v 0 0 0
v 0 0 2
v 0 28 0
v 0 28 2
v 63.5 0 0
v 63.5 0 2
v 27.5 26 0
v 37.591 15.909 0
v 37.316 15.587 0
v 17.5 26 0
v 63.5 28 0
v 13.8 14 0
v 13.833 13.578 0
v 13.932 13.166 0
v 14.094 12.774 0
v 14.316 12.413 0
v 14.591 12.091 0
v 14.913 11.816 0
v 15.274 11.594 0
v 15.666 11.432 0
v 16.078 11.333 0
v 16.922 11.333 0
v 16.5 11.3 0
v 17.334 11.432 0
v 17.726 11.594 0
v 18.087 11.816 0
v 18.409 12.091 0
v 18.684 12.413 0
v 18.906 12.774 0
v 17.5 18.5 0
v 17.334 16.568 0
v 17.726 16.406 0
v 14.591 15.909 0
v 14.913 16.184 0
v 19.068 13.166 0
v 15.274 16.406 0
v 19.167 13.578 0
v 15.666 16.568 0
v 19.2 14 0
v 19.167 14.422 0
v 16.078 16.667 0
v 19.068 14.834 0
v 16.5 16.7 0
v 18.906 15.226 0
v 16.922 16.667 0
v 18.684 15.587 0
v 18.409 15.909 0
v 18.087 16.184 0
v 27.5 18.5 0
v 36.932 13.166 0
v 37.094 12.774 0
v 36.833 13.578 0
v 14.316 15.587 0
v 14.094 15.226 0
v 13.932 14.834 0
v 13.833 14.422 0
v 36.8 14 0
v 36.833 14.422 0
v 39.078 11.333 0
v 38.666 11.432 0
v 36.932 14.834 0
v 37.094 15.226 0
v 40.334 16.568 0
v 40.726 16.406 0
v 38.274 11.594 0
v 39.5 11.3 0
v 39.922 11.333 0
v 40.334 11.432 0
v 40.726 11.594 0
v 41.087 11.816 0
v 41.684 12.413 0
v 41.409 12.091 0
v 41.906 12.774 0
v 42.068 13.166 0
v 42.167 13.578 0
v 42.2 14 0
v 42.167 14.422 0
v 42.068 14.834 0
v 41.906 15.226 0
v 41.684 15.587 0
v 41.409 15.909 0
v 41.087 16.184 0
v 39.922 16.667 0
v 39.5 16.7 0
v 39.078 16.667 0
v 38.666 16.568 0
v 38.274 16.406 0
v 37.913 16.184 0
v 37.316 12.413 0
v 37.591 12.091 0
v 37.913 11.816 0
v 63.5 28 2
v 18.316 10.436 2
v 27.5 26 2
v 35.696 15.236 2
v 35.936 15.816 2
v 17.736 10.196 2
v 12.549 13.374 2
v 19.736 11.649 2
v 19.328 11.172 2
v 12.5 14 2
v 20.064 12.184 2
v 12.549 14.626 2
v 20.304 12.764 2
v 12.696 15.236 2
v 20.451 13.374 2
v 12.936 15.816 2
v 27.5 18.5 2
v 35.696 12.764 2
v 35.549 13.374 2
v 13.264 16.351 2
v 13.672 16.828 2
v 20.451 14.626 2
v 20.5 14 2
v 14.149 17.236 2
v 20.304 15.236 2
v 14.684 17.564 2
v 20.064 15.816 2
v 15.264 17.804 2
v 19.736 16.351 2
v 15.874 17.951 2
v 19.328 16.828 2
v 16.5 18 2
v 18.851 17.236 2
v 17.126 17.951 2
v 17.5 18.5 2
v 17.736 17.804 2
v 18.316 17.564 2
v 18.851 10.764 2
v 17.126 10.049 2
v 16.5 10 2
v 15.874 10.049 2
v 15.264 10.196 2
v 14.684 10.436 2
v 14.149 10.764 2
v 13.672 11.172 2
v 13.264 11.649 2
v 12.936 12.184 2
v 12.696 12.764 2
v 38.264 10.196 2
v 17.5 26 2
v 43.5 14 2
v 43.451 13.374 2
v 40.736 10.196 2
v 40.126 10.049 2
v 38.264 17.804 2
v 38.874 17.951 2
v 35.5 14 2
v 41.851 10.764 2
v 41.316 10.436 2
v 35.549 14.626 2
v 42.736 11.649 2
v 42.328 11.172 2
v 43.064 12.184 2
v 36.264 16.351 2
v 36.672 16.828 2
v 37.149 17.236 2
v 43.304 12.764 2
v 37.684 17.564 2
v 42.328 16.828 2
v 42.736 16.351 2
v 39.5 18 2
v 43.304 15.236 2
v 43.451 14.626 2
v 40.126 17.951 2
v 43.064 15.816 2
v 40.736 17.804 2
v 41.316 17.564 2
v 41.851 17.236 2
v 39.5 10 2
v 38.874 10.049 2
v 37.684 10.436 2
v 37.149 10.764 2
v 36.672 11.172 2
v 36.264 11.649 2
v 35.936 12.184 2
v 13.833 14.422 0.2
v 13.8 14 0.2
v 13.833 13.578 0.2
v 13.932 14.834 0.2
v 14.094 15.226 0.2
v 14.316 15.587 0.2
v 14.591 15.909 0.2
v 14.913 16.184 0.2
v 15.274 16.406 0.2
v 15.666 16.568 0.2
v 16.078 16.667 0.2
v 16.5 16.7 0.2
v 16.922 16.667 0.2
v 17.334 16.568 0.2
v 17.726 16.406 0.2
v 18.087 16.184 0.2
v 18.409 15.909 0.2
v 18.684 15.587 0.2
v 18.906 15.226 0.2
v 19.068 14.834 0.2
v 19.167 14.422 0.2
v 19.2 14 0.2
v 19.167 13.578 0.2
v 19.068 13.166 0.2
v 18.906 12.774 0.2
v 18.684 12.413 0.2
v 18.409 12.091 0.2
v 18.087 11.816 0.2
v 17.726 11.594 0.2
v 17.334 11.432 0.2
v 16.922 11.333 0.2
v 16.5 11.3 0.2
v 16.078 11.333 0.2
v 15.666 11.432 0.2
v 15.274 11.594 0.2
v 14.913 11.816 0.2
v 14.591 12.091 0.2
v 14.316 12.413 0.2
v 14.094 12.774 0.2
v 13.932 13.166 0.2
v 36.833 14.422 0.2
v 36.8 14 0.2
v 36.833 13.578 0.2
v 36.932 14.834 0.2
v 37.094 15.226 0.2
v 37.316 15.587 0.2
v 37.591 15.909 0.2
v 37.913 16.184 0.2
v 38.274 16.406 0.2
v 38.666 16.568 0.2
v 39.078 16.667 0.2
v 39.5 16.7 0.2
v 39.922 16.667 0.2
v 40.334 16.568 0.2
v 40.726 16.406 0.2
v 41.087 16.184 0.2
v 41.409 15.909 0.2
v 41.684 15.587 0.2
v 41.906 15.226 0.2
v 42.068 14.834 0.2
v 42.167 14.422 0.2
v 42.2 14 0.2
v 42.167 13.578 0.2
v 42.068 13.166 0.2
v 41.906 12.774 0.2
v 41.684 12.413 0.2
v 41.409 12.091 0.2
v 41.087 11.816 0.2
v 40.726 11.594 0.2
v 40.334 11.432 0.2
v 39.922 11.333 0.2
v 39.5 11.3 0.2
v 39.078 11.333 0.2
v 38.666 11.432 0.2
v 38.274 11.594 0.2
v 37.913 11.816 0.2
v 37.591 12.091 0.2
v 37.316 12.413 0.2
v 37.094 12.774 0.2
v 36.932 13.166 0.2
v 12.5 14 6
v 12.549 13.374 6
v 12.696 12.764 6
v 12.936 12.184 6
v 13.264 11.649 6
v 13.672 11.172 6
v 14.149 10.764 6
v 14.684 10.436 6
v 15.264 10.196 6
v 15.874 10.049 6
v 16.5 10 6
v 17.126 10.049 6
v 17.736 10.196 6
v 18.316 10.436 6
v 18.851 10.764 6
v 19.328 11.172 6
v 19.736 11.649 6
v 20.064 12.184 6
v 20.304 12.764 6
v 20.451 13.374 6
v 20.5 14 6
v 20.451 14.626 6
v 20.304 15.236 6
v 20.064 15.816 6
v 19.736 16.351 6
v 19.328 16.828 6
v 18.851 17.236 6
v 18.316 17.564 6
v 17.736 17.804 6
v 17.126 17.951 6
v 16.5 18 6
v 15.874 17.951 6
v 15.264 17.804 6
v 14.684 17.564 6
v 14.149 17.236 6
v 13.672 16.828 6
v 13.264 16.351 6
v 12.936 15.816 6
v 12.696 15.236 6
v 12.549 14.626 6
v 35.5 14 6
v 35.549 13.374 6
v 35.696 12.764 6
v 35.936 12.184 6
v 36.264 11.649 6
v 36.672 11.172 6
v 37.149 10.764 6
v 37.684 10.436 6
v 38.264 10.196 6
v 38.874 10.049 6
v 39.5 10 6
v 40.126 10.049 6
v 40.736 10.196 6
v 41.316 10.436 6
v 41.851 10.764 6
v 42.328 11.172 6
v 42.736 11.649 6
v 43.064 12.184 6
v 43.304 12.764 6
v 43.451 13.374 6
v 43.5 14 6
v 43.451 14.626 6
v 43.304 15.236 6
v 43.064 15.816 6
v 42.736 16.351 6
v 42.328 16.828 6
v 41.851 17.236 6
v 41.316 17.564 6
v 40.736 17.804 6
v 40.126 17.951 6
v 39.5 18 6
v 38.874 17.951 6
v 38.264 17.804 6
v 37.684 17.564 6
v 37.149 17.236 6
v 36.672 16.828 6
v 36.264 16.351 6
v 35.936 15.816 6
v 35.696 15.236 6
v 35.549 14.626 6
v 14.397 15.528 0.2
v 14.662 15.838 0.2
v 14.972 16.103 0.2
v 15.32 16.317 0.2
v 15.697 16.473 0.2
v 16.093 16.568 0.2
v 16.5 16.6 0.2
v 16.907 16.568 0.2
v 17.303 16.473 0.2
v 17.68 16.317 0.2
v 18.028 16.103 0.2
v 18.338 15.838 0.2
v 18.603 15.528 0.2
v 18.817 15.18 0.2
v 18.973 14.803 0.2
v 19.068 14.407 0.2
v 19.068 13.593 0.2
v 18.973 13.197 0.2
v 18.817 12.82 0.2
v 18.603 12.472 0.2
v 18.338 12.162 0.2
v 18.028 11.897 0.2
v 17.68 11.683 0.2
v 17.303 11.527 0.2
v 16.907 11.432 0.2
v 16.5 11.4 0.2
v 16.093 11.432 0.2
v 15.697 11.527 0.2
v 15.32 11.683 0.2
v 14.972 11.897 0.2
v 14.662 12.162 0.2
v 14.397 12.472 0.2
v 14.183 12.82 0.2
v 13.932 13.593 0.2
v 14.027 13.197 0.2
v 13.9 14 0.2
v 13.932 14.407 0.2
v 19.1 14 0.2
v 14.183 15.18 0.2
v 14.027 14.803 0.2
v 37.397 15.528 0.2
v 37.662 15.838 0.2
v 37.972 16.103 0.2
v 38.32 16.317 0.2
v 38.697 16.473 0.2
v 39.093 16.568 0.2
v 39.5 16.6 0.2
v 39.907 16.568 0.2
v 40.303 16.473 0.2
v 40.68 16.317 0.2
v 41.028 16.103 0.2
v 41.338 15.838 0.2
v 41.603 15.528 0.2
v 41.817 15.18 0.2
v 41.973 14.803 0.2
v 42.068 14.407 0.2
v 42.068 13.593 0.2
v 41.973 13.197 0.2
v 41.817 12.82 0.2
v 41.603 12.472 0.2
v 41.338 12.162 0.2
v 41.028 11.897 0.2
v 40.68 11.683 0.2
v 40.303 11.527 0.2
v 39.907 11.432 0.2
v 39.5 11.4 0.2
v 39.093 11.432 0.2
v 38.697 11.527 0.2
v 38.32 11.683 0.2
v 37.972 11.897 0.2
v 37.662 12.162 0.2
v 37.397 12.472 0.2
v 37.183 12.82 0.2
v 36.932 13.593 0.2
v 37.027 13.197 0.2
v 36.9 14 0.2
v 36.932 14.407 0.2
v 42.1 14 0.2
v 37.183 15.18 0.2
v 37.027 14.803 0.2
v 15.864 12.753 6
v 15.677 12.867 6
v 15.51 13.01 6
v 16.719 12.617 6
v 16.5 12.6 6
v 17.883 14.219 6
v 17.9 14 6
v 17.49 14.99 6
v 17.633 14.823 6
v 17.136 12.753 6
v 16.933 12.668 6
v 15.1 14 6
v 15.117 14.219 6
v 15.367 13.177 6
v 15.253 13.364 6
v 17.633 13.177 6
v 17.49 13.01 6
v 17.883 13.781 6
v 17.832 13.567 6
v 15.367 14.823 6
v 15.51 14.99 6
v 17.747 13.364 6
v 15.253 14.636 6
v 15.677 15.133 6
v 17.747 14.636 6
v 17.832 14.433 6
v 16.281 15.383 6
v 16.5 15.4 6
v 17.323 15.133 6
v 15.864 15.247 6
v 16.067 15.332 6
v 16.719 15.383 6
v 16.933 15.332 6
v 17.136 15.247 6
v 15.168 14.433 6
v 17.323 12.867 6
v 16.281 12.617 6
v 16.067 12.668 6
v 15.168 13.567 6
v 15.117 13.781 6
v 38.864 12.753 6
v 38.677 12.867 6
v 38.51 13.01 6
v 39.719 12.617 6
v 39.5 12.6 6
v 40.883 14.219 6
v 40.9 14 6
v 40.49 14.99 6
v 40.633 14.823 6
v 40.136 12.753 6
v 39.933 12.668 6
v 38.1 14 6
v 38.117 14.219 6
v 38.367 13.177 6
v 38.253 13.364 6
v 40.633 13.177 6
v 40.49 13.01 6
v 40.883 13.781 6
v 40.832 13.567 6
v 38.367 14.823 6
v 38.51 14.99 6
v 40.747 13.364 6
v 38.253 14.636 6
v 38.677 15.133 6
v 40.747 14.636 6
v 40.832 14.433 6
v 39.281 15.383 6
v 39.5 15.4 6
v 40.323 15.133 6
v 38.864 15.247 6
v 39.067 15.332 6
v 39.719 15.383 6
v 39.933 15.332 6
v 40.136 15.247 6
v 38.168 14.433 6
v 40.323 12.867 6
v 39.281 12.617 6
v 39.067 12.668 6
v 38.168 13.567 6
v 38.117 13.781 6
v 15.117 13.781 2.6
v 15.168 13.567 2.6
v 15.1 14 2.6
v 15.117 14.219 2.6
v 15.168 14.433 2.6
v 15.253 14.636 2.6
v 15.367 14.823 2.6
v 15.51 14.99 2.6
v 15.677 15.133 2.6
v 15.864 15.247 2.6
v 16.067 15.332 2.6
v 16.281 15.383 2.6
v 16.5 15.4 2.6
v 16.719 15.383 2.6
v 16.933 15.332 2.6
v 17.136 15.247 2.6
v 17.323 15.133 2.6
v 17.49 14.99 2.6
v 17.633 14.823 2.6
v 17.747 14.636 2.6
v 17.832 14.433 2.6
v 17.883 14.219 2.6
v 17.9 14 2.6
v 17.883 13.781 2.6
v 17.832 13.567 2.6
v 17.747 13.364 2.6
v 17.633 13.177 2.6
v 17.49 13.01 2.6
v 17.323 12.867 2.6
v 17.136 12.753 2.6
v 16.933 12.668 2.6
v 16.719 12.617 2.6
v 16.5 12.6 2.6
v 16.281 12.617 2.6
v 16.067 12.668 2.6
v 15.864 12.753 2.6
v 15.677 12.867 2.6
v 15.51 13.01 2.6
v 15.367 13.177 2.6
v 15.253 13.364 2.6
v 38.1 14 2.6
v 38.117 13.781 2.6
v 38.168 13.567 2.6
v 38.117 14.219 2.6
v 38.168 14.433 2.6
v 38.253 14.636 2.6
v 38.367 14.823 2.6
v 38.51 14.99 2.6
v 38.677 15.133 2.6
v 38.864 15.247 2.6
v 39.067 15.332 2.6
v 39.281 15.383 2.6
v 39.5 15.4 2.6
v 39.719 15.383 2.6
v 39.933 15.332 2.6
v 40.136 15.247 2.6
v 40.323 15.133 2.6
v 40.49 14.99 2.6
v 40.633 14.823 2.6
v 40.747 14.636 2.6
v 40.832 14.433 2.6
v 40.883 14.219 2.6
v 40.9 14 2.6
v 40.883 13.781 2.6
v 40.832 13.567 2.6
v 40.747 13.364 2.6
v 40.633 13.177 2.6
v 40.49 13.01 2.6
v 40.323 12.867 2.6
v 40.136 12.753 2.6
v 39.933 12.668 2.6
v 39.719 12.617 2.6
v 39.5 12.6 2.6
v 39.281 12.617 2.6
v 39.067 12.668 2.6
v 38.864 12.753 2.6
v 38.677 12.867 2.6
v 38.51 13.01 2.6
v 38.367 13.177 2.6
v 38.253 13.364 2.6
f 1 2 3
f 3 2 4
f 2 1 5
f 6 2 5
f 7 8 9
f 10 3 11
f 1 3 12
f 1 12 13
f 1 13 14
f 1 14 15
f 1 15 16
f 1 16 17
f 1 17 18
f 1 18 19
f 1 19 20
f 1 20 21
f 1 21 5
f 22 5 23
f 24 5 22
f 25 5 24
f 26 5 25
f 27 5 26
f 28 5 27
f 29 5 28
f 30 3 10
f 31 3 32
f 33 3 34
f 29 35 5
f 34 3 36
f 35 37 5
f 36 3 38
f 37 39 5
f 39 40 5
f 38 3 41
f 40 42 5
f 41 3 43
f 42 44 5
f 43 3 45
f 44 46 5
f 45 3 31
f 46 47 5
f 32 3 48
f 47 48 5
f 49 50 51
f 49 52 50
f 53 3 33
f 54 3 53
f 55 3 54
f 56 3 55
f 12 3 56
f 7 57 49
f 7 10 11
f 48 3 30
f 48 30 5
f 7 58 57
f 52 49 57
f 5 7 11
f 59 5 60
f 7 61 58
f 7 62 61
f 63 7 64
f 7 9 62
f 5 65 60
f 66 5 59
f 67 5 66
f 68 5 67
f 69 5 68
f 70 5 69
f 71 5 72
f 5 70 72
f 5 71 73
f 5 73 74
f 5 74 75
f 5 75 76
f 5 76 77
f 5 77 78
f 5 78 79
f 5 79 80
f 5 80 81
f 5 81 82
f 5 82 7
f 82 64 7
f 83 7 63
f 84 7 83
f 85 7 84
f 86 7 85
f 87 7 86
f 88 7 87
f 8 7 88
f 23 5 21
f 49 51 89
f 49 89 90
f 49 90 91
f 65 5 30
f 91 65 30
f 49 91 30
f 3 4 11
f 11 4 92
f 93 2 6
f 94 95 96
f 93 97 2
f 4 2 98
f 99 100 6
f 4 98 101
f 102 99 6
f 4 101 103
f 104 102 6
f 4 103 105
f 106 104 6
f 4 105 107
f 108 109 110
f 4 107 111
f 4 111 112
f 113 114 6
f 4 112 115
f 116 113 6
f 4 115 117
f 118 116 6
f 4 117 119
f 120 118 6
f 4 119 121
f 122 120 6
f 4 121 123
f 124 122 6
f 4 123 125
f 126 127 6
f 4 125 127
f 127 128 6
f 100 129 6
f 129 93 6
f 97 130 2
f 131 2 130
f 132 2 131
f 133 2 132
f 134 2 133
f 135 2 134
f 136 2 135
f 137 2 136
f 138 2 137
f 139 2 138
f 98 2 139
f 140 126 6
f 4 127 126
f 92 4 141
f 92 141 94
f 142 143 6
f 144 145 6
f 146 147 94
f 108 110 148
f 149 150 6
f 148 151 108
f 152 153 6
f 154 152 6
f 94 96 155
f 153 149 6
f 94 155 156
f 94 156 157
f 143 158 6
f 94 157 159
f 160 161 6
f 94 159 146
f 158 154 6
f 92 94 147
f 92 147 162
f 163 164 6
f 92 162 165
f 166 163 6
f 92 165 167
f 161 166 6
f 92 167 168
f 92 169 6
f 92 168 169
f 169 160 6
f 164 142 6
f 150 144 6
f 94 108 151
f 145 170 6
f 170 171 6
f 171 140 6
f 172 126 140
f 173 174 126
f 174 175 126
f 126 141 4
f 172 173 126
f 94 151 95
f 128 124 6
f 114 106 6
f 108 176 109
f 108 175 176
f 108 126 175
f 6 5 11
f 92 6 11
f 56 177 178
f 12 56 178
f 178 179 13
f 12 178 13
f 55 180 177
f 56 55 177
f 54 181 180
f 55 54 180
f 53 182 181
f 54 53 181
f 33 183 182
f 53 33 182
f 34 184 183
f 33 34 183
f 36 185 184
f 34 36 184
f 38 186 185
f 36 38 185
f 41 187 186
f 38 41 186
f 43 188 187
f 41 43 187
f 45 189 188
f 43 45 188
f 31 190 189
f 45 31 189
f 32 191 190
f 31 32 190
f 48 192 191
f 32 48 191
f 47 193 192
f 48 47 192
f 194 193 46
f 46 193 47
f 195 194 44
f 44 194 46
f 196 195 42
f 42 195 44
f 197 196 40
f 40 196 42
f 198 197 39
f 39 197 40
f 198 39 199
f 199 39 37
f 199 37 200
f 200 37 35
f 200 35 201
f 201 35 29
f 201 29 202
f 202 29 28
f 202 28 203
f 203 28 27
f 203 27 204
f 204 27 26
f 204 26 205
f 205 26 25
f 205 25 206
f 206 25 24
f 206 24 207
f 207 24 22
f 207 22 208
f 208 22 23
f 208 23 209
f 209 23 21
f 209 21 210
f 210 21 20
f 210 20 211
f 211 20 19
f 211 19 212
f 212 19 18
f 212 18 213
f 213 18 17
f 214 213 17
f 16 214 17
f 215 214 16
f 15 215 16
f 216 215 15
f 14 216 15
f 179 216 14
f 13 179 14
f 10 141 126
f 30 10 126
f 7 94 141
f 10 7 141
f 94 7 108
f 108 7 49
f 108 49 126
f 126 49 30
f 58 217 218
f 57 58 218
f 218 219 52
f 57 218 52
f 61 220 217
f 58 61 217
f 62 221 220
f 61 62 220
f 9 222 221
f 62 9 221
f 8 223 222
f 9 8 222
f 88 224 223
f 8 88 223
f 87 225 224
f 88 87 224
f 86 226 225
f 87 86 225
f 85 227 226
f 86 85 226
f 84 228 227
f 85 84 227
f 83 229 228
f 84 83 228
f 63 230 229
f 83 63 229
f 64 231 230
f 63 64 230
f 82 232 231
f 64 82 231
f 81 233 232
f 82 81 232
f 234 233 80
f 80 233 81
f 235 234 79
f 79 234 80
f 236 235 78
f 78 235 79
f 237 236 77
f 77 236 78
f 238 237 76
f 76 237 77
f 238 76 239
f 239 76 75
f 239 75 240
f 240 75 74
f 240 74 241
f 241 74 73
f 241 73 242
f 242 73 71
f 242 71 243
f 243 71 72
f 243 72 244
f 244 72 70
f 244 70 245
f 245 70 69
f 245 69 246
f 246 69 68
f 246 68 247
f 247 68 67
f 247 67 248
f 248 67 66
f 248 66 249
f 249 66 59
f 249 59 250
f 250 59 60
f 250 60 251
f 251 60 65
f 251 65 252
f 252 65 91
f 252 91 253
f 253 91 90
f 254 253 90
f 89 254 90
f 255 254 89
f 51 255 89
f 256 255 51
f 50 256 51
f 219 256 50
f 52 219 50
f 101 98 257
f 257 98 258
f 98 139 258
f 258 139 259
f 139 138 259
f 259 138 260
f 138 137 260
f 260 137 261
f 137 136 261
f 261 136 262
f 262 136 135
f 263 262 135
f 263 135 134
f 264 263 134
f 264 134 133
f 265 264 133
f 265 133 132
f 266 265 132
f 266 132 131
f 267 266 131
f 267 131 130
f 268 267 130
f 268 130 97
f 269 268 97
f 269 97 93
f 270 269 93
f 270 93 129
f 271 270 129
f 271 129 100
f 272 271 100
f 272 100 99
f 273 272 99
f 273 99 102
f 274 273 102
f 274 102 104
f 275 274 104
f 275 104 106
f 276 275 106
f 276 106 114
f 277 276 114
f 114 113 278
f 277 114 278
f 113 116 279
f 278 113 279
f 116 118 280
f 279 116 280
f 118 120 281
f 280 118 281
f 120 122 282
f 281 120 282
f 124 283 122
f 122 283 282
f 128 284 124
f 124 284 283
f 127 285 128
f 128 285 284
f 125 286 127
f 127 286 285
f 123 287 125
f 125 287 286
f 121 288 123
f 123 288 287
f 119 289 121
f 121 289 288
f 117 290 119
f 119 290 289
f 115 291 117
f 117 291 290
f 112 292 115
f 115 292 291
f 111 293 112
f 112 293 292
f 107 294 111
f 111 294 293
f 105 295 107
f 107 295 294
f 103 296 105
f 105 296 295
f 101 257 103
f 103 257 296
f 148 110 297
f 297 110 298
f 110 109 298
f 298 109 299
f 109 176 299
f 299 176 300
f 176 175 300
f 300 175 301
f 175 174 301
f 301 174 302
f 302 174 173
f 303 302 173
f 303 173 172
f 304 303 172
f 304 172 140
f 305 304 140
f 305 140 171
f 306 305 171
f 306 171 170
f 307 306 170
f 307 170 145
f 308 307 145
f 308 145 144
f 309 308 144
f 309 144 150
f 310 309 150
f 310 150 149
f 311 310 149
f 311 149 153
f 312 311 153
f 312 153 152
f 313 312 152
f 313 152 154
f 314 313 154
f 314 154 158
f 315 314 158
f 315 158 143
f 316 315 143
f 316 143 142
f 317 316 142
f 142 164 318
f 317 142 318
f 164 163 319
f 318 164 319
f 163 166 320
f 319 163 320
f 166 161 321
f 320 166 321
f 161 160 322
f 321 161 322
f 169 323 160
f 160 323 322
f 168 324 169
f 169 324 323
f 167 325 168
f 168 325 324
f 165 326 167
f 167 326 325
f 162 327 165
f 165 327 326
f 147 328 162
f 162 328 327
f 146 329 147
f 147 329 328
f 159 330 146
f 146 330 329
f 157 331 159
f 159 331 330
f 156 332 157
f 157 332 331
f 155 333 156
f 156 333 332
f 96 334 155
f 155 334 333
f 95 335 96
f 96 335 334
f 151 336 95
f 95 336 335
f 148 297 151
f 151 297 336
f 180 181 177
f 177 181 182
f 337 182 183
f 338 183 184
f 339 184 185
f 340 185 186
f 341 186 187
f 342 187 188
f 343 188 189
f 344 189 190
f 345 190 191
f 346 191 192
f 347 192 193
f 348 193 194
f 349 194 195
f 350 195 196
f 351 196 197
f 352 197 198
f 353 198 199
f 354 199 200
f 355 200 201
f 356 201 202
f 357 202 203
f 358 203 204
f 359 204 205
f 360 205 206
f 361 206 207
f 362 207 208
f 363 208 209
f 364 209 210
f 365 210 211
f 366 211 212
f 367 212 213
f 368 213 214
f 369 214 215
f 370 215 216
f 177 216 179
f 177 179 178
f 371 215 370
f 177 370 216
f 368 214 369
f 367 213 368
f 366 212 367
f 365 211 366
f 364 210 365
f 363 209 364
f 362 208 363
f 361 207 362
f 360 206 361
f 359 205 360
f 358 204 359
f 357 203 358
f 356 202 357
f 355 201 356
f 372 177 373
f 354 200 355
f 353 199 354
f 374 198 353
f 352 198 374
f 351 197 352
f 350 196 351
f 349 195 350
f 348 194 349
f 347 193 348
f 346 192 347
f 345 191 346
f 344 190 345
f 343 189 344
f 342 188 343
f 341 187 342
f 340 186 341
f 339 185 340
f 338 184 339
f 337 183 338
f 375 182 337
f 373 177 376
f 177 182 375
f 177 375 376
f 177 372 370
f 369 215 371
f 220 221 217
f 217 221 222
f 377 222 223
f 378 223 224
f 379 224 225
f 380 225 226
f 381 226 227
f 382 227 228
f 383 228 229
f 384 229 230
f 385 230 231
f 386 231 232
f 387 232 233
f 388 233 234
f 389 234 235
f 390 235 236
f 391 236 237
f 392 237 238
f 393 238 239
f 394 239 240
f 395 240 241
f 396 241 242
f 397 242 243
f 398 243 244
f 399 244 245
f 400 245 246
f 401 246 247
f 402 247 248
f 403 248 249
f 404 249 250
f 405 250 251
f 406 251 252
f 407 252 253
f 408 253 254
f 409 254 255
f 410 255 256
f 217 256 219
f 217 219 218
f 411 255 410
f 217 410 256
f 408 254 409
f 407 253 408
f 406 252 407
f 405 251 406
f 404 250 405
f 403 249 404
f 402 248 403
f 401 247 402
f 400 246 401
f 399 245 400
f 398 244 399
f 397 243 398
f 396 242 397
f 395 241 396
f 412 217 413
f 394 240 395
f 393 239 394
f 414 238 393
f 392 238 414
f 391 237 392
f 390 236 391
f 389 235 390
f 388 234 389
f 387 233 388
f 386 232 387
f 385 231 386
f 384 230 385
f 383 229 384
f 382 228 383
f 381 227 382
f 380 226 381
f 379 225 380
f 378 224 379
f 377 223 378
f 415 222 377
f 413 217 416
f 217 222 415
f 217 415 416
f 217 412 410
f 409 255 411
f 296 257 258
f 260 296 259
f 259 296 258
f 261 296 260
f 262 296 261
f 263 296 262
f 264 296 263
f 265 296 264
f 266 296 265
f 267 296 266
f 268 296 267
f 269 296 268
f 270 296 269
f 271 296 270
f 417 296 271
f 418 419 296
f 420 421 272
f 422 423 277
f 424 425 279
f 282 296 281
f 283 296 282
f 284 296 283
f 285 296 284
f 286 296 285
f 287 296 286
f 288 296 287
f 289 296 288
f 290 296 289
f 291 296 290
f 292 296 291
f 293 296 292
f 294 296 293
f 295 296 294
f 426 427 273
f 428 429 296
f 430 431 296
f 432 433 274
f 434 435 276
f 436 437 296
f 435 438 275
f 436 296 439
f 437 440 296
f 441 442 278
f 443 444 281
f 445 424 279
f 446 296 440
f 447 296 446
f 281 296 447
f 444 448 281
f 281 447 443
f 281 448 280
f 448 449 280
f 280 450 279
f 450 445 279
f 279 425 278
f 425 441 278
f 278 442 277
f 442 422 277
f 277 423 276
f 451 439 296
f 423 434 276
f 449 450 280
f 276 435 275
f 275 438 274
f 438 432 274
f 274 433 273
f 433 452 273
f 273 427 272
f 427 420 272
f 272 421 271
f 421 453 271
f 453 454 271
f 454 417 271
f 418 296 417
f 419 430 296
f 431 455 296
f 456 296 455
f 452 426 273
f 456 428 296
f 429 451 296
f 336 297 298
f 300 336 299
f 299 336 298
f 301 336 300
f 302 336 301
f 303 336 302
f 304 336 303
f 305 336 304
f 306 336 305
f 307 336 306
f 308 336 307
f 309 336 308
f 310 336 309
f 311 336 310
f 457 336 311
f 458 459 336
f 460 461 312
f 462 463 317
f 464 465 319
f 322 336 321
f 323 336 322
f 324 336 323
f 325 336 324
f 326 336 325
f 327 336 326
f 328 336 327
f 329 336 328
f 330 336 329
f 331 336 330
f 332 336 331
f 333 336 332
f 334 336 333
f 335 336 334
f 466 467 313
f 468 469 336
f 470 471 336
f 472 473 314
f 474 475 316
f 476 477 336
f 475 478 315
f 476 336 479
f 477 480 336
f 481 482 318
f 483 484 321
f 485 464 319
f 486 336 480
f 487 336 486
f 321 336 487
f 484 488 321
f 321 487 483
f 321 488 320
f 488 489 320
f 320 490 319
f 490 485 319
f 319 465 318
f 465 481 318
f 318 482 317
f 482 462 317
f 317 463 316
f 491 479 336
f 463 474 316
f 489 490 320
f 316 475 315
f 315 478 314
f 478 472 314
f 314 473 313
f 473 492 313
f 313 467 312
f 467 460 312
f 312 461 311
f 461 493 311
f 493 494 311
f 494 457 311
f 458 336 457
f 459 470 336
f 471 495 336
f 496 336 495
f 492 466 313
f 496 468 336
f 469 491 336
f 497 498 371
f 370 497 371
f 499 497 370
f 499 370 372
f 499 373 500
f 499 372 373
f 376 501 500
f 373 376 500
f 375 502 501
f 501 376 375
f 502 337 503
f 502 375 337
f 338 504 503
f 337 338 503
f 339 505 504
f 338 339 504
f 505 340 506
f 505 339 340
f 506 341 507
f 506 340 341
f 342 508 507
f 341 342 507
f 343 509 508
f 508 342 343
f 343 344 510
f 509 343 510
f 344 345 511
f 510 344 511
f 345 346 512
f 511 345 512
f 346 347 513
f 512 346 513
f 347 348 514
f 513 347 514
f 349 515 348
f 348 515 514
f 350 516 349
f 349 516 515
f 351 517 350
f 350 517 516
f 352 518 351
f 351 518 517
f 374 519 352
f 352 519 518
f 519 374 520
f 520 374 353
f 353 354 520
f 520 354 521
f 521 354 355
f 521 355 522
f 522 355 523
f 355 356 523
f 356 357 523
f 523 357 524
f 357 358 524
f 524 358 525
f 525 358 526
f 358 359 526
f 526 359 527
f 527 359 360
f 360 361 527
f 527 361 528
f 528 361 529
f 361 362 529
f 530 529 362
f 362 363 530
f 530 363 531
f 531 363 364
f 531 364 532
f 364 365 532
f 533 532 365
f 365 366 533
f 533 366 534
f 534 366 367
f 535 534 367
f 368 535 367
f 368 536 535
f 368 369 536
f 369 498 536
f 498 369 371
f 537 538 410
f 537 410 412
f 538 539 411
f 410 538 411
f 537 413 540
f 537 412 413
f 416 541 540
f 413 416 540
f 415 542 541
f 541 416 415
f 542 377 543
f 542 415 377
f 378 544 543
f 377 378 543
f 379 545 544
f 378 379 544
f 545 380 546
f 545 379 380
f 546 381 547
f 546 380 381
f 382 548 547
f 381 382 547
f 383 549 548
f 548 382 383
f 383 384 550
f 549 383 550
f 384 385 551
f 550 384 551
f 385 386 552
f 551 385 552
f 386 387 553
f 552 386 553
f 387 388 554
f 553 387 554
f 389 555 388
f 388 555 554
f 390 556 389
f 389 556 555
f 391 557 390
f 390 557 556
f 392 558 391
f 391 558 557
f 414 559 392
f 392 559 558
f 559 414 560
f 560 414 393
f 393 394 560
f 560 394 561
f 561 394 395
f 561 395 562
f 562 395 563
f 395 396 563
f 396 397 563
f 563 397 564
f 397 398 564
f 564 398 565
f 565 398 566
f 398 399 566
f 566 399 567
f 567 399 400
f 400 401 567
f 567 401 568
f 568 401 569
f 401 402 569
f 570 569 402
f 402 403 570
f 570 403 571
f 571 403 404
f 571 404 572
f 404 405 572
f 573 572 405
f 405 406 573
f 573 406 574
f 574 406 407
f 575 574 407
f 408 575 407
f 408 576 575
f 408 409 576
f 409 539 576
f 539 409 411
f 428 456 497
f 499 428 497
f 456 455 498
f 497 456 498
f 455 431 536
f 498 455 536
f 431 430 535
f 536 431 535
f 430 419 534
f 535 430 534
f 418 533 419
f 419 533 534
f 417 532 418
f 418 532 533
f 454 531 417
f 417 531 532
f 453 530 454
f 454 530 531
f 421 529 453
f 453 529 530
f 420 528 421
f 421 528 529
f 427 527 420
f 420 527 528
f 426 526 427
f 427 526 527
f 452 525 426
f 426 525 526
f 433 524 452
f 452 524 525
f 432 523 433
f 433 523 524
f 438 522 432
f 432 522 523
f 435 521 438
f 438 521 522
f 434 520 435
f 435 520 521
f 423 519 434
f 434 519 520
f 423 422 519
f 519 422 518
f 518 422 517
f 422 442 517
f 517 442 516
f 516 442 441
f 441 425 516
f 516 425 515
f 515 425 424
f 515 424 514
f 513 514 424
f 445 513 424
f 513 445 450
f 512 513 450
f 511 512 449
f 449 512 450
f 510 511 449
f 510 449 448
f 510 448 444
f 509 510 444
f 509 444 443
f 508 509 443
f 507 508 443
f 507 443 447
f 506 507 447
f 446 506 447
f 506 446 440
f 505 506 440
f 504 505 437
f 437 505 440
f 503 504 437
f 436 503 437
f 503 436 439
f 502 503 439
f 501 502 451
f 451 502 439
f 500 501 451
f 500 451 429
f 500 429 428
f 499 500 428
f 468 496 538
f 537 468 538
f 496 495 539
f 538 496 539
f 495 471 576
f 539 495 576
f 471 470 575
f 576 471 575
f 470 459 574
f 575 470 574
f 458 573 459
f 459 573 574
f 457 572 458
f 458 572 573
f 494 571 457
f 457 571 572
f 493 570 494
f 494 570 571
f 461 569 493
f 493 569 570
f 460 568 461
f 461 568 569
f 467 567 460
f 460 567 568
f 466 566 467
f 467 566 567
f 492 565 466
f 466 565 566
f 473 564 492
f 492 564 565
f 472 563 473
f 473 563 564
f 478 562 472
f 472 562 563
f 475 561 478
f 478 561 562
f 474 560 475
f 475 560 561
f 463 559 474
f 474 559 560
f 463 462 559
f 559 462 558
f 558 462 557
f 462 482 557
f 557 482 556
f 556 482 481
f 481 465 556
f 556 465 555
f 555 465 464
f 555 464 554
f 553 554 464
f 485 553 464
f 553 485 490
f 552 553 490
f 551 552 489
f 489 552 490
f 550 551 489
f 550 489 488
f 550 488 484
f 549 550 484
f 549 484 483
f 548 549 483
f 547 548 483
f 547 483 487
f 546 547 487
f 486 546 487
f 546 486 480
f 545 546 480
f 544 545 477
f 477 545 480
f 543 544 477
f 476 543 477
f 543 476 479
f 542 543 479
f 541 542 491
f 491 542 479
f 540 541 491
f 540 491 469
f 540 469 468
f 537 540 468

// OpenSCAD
// Insulator for sensor board with mounting for ultrasonic transducer

DualNozzle = false;

$fn=40;
thickness = 2;
holeY=14;
hole1X=16.5;
hole2X=hole1X+23;
transducerY = 4.5;
pillarHeight = (DualNozzle) ? 2.25 : 4.0;
pillarRadius = 4.0;	// use 4.5 if using deep countersinks
overlap=1;

difference() {
	union() {
		// main plate
		cube([63.5,28,thickness]);
		// pillars
		translate([hole1X,holeY,thickness-overlap]) cylinder(h=pillarHeight+overlap,r=pillarRadius);
		translate([hole2X,holeY,thickness-overlap]) cylinder(h=pillarHeight+overlap,r=pillarRadius);
	}
	// screw holes in pillars
	translate([hole1X,holeY,-overlap]) cylinder(h=20,r=1.4);
	translate([hole2X,holeY,-overlap]) cylinder(h=20,r=1.4);
	// countersinks, leaving about 3mm of screw to tap into the heatsink duct
	translate([hole1X,holeY,pillarHeight-3.9]) cylinder(r1=2.65,r2=0,h=5.3);
	translate([hole2X,holeY,pillarHeight-3.9]) cylinder(r1=2.65,r2=0,h=5.3);
	// holes for the screw heads, overlapping the countersinks by 0.1mm
	translate([hole1X,holeY,-overlap]) cylinder(r=2.7,h=pillarHeight-3.8+overlap);
	translate([hole2X,holeY,-overlap]) cylinder(r=2.7,h=pillarHeight-3.8+overlap);
	// cutout to allow in-situ programming
	translate([hole1X+1,holeY+4.5,-overlap]) cube([10,7.5,thickness+2*overlap]);
}
